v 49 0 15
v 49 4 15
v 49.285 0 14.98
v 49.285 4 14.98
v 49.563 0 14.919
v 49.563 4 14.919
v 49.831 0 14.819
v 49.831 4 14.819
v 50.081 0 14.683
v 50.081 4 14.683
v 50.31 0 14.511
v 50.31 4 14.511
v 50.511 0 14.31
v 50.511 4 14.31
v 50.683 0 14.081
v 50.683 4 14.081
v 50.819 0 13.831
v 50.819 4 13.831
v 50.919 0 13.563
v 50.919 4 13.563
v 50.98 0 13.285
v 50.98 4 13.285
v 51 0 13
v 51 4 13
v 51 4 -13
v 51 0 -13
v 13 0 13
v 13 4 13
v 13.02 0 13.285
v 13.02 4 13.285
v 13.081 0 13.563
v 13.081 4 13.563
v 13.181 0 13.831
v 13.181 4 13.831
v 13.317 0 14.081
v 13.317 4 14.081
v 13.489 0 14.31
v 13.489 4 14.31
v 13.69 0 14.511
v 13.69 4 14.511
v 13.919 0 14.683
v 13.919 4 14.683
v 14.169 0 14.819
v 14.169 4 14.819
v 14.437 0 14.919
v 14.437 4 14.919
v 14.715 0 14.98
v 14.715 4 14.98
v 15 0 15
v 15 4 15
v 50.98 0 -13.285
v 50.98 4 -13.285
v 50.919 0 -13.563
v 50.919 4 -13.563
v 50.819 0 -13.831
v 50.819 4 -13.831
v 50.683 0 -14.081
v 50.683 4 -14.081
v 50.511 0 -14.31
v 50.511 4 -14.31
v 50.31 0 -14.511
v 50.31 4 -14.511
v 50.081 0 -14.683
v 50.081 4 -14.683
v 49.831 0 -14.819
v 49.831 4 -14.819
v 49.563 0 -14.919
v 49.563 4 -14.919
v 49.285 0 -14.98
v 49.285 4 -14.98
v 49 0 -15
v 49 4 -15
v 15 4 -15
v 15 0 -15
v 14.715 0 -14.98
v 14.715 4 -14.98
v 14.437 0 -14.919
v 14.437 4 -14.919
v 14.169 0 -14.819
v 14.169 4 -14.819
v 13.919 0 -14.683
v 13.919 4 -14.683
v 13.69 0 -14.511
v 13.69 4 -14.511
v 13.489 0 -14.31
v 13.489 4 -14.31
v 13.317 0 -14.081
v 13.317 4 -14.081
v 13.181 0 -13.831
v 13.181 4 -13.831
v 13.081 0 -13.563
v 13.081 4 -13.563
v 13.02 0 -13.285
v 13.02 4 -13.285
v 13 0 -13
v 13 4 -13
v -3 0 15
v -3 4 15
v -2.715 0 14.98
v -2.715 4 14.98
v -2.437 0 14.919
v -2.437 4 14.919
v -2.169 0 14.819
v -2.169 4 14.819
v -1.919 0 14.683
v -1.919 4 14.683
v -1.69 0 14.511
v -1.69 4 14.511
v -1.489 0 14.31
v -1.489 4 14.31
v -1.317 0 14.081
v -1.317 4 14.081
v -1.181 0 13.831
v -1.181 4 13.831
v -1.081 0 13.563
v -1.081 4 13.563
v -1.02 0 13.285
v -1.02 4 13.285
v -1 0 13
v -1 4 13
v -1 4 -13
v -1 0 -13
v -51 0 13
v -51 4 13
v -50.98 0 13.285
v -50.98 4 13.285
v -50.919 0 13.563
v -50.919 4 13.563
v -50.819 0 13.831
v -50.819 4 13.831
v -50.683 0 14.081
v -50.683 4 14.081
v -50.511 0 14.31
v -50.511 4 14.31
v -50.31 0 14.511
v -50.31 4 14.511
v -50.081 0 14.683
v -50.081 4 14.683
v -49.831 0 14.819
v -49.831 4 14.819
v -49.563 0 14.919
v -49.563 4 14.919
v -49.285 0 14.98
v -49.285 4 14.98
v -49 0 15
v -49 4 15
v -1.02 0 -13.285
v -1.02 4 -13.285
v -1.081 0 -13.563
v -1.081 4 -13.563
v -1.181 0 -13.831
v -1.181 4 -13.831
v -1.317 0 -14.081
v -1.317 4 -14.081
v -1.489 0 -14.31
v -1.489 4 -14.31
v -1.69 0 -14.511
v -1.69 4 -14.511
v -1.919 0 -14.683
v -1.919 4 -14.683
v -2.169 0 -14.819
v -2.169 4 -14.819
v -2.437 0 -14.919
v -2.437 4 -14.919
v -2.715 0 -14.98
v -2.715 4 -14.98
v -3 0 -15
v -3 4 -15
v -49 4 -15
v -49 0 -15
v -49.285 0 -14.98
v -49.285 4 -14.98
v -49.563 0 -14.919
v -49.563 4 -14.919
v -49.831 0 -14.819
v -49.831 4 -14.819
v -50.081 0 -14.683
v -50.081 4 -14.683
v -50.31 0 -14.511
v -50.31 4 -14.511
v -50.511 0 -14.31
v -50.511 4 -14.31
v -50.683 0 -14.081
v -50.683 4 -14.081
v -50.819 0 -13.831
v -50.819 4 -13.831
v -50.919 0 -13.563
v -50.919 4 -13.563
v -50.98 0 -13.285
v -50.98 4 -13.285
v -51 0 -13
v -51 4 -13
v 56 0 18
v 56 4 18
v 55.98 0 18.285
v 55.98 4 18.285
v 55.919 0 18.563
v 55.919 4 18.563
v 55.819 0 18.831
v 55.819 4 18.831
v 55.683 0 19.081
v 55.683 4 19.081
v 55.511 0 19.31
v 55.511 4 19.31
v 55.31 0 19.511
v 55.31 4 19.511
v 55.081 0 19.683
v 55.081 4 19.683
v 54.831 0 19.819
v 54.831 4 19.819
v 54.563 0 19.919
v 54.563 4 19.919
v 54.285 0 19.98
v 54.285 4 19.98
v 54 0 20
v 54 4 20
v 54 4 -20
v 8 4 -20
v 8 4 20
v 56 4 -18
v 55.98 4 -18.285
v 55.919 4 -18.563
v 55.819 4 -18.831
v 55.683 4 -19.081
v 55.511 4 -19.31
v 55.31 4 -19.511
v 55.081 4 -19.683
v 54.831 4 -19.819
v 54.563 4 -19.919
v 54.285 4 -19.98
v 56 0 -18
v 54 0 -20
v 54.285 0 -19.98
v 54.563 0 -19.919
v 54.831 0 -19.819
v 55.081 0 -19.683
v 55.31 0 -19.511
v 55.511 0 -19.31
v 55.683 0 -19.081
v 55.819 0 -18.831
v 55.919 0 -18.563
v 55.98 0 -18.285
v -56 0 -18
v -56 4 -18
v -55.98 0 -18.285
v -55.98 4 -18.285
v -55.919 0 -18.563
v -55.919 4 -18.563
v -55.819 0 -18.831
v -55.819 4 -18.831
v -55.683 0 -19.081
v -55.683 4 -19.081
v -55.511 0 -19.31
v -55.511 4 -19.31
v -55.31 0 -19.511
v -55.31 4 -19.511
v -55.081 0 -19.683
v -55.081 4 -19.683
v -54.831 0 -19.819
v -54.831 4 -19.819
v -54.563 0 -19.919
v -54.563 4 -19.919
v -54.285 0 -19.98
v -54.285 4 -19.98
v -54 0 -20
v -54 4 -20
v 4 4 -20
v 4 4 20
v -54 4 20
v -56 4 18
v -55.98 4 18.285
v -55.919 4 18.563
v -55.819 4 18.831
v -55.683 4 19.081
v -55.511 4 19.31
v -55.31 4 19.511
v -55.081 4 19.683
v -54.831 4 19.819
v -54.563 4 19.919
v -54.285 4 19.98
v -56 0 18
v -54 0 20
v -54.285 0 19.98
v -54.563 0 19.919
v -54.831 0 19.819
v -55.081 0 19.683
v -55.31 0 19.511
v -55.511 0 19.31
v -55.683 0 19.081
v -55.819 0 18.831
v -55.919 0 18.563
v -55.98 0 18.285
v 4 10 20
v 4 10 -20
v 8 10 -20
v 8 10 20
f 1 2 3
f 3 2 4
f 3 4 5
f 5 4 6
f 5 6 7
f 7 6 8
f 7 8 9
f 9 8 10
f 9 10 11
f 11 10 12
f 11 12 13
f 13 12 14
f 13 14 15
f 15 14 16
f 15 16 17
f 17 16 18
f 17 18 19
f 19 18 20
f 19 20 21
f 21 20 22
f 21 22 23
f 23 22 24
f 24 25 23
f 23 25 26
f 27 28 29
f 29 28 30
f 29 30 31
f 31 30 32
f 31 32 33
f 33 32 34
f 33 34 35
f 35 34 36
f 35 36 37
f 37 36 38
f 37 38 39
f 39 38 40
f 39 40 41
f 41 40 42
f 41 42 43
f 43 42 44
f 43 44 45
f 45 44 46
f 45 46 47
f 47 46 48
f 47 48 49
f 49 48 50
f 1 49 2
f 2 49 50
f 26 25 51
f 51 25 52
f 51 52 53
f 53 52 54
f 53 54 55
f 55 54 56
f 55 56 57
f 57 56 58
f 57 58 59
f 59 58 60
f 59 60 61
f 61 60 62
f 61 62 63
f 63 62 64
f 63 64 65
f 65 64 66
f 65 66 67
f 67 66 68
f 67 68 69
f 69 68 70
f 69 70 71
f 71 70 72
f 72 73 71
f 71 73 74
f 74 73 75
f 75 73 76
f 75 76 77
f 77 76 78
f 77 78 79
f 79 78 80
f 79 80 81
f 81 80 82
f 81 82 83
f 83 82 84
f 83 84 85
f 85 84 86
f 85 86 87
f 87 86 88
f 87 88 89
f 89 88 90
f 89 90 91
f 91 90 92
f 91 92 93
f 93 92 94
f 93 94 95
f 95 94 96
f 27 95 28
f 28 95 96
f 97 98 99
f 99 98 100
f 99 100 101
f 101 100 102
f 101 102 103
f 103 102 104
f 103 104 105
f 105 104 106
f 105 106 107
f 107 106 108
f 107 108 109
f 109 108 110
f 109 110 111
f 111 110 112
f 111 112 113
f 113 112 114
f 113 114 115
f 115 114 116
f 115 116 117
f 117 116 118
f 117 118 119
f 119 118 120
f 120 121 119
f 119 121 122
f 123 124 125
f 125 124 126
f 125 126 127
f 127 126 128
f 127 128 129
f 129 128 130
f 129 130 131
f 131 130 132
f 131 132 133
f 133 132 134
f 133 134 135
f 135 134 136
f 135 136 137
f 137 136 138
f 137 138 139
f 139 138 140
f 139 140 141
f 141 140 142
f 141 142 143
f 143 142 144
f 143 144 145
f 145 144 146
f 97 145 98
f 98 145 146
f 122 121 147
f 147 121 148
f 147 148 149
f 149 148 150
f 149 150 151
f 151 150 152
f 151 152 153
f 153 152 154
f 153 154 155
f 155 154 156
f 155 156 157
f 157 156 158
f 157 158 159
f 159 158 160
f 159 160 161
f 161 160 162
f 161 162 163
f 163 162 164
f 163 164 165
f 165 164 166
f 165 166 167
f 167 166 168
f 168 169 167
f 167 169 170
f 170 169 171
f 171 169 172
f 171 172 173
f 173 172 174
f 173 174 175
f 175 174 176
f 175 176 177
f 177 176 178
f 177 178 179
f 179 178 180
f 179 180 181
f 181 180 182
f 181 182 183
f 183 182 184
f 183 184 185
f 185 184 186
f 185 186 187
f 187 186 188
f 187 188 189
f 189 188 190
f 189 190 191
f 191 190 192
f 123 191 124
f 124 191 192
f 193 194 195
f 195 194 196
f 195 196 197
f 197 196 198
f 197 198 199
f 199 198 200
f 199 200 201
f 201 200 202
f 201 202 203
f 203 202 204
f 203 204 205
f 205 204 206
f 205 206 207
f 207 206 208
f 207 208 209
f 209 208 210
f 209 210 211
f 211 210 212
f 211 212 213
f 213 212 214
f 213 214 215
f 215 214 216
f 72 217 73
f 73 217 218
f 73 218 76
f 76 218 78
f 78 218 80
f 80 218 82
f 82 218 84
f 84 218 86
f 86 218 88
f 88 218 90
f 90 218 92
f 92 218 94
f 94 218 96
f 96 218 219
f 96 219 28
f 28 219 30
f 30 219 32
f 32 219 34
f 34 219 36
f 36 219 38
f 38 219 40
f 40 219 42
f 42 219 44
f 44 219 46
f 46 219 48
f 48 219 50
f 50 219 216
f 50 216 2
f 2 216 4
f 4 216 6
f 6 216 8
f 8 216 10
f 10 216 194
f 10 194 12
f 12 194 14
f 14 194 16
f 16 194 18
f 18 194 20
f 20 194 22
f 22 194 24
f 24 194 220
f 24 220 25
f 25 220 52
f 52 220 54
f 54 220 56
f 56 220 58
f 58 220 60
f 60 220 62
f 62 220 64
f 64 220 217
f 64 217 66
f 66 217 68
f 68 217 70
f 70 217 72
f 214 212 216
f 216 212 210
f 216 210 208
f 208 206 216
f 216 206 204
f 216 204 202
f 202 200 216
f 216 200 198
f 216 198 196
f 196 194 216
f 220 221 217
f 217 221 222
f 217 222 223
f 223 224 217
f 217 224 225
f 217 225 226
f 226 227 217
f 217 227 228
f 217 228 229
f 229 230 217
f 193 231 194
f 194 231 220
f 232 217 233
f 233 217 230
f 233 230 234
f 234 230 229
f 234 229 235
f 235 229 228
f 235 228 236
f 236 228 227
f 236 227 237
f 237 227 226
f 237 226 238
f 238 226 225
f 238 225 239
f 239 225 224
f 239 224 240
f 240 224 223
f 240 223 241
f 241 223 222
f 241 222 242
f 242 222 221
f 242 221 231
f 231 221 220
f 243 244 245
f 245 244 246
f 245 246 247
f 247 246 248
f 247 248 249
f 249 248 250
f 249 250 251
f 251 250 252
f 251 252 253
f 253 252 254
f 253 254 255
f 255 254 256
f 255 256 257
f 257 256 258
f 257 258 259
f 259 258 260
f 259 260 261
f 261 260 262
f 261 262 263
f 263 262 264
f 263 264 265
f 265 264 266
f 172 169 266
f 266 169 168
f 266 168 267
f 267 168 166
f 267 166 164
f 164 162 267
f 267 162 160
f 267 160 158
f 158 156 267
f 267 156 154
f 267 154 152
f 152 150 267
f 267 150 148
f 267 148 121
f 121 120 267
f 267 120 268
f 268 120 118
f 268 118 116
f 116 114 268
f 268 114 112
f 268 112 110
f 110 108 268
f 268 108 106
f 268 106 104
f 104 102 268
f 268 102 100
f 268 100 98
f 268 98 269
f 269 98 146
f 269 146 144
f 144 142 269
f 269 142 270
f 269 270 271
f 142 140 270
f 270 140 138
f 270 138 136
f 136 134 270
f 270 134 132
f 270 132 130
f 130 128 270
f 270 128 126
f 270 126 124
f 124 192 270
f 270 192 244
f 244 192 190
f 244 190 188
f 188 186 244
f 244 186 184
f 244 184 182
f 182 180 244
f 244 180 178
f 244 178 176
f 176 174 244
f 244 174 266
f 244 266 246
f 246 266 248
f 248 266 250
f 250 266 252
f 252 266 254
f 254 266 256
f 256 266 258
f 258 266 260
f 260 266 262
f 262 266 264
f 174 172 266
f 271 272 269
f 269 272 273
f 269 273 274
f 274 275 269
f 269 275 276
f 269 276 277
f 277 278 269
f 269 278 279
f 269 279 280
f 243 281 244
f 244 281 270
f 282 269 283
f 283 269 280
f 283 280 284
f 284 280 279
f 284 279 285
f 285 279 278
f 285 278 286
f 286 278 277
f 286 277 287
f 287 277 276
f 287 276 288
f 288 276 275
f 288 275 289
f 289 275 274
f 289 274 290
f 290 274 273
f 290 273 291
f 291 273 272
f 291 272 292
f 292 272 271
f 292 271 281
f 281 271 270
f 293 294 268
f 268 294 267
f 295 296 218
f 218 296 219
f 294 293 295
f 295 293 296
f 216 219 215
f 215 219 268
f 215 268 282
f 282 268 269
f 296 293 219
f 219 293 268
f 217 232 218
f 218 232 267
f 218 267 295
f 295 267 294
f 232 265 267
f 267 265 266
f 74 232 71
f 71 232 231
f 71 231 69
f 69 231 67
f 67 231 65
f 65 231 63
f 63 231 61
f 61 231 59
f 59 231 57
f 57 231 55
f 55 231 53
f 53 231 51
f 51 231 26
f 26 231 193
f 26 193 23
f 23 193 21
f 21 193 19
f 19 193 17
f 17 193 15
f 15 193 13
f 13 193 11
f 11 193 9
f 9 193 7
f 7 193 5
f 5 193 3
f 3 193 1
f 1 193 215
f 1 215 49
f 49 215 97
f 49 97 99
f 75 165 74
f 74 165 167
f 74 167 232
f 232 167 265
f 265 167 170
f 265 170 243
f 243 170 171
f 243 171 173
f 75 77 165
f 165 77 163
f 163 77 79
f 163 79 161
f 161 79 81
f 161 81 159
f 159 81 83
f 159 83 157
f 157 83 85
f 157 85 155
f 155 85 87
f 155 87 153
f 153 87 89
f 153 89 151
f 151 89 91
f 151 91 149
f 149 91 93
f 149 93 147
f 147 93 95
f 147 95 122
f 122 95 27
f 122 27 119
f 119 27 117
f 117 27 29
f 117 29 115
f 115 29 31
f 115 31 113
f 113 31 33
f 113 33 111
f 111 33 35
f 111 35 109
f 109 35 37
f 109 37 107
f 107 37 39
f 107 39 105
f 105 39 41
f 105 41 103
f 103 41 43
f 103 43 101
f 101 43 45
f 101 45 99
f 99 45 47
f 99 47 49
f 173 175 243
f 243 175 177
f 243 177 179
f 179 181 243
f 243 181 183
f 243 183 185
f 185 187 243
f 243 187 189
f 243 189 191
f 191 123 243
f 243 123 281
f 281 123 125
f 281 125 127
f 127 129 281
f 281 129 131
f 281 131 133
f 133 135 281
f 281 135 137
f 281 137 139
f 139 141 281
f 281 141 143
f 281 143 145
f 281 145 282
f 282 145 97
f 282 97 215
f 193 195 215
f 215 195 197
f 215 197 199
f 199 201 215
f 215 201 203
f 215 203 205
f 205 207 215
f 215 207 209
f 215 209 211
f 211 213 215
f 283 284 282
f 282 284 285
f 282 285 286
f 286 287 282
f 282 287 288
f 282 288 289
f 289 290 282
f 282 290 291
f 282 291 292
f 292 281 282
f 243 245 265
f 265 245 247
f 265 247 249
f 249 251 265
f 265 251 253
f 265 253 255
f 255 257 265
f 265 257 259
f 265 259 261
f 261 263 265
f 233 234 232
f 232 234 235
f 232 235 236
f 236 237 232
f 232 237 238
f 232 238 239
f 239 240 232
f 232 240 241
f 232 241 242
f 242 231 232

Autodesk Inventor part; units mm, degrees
ref_plane "YZ Plane" through (0, 0, 0) normal (1, 0, 0) x (0, 1, 0)
ref_plane "XZ Plane" through (0, 0, 0) normal (0, 1, 0) x (-1, 0, 0)
ref_plane "XY Plane" through (0, 0, 0) normal (0, 0, 1) x (1, 0, 0)
sketch "スケッチ1" plane through (0, 0, 0) normal (0, 1, 0) x (-1, 0, 0)
  line L0 (56, 20) -> (-56, 20)
  line L1 (-56, 20) -> (-56, -20)
  line L2 (-56, -20) -> (56, -20)
  line L3 (56, -20) -> (56, 20)
  line L4 (56, 20) -> (-56, -20) construction
  line L5 (-56, 20) -> (56, -20) construction
  point P0 (0, 0)
  dimension "d0" = 112
  dimension "d1" = 40
extrude "押し出し1" add sketch "スケッチ1" along normal blind 10
sketch "スケッチ2" plane through (0, 10, 0) normal (0, 1, 0) x (1, 0, 0)
  line L0 (56, 20) -> (-56, 20) projected
  line L1 (-56, -20) -> (56, -20) projected
  line L2 (-56, 20) -> (4, 20)
  line L3 (4, 20) -> (4, -20)
  line L4 (4, -20) -> (-56, -20)
  line L5 (-56, -20) -> (-56, 20)
  line L6 (56, -20) -> (56, 20) projected
  line L7 (56, 20) -> (8, 20)
  line L8 (8, 20) -> (8, -20)
  line L9 (8, -20) -> (56, -20)
  line L10 (56, -20) -> (56, 20)
  point P0 (0, 0)
  point P1 (-56, -20)
  point P2 (4, 20)
  point P3 (8, 20)
  dimension "d4" = 60
  dimension "d5" = 48
extrude "押し出し2" cut sketch "スケッチ2" against normal blind 6 contours L6 L1 L8 L0 | L3 L1 L5 L0
fillet "フィレット1" radius 2 4 edges at (-56, 2, 20) (-56, 2, -20) (56, 2, -20) (56, 2, 20)
sketch "スケッチ3" plane through (0, 4, 0) normal (0, 1, 0) x (1, 0, 0)
  line L0 (-51, -15) -> (-1, -15)
  line L1 (-1, -15) -> (-1, 15)
  line L2 (-1, 15) -> (-51, 15)
  line L3 (-51, 15) -> (-51, -15)
  line L4 (-51, -15) -> (-1, 15) construction
  line L5 (-1, -15) -> (-51, 15) construction
  line L6 (13, -15) -> (51, -15)
  line L7 (51, -15) -> (51, 15)
  line L8 (51, 15) -> (13, 15)
  line L9 (13, 15) -> (13, -15)
  line L10 (13, -15) -> (51, 15) construction
  line L11 (51, -15) -> (13, 15) construction
  line L12 (8, 20) -> (54, 20) projected
  line L13 (56, 18) -> (56, -18) projected
  line L14 (54, -20) -> (8, -20) projected
  line L15 (8, -20) -> (8, 20) projected
  line L16 (-54, 20) -> (4, 20) projected
  line L17 (-56, -18) -> (-56, 18) projected
  line L18 (4, -20) -> (-54, -20) projected
  line L19 (4, 20) -> (4, -20) projected
  point P0 (0, 0)
  point P1 (-26, 0)
  point P2 (32, 0)
  dimension "d9" = 5
  dimension "d10" = 5
  dimension "d11" = 5
  dimension "d12" = 5
  dimension "d13" = 5
  dimension "d14" = 5
  dimension "d15" = 5
  dimension "d16" = 5
extrude "押し出し3" cut sketch "スケッチ3" against normal blind 6
fillet "フィレット2" radius 2 8 edges at (-51, 2, -15) (-1, 2, -15) (-51, 2, 15) (-1, 2, 15) (13, 2, -15) (51, 2, -15) (13, 2, 15) (51, 2, 15)
equation "\"d10\" = d9"
equation "\"d11\" = d9"
equation "\"d12\" = d9"
equation "\"d13\" = d9"
equation "\"d14\" = d9"
equation "\"d15\" = d9"
equation "\"d16\" = d9"
